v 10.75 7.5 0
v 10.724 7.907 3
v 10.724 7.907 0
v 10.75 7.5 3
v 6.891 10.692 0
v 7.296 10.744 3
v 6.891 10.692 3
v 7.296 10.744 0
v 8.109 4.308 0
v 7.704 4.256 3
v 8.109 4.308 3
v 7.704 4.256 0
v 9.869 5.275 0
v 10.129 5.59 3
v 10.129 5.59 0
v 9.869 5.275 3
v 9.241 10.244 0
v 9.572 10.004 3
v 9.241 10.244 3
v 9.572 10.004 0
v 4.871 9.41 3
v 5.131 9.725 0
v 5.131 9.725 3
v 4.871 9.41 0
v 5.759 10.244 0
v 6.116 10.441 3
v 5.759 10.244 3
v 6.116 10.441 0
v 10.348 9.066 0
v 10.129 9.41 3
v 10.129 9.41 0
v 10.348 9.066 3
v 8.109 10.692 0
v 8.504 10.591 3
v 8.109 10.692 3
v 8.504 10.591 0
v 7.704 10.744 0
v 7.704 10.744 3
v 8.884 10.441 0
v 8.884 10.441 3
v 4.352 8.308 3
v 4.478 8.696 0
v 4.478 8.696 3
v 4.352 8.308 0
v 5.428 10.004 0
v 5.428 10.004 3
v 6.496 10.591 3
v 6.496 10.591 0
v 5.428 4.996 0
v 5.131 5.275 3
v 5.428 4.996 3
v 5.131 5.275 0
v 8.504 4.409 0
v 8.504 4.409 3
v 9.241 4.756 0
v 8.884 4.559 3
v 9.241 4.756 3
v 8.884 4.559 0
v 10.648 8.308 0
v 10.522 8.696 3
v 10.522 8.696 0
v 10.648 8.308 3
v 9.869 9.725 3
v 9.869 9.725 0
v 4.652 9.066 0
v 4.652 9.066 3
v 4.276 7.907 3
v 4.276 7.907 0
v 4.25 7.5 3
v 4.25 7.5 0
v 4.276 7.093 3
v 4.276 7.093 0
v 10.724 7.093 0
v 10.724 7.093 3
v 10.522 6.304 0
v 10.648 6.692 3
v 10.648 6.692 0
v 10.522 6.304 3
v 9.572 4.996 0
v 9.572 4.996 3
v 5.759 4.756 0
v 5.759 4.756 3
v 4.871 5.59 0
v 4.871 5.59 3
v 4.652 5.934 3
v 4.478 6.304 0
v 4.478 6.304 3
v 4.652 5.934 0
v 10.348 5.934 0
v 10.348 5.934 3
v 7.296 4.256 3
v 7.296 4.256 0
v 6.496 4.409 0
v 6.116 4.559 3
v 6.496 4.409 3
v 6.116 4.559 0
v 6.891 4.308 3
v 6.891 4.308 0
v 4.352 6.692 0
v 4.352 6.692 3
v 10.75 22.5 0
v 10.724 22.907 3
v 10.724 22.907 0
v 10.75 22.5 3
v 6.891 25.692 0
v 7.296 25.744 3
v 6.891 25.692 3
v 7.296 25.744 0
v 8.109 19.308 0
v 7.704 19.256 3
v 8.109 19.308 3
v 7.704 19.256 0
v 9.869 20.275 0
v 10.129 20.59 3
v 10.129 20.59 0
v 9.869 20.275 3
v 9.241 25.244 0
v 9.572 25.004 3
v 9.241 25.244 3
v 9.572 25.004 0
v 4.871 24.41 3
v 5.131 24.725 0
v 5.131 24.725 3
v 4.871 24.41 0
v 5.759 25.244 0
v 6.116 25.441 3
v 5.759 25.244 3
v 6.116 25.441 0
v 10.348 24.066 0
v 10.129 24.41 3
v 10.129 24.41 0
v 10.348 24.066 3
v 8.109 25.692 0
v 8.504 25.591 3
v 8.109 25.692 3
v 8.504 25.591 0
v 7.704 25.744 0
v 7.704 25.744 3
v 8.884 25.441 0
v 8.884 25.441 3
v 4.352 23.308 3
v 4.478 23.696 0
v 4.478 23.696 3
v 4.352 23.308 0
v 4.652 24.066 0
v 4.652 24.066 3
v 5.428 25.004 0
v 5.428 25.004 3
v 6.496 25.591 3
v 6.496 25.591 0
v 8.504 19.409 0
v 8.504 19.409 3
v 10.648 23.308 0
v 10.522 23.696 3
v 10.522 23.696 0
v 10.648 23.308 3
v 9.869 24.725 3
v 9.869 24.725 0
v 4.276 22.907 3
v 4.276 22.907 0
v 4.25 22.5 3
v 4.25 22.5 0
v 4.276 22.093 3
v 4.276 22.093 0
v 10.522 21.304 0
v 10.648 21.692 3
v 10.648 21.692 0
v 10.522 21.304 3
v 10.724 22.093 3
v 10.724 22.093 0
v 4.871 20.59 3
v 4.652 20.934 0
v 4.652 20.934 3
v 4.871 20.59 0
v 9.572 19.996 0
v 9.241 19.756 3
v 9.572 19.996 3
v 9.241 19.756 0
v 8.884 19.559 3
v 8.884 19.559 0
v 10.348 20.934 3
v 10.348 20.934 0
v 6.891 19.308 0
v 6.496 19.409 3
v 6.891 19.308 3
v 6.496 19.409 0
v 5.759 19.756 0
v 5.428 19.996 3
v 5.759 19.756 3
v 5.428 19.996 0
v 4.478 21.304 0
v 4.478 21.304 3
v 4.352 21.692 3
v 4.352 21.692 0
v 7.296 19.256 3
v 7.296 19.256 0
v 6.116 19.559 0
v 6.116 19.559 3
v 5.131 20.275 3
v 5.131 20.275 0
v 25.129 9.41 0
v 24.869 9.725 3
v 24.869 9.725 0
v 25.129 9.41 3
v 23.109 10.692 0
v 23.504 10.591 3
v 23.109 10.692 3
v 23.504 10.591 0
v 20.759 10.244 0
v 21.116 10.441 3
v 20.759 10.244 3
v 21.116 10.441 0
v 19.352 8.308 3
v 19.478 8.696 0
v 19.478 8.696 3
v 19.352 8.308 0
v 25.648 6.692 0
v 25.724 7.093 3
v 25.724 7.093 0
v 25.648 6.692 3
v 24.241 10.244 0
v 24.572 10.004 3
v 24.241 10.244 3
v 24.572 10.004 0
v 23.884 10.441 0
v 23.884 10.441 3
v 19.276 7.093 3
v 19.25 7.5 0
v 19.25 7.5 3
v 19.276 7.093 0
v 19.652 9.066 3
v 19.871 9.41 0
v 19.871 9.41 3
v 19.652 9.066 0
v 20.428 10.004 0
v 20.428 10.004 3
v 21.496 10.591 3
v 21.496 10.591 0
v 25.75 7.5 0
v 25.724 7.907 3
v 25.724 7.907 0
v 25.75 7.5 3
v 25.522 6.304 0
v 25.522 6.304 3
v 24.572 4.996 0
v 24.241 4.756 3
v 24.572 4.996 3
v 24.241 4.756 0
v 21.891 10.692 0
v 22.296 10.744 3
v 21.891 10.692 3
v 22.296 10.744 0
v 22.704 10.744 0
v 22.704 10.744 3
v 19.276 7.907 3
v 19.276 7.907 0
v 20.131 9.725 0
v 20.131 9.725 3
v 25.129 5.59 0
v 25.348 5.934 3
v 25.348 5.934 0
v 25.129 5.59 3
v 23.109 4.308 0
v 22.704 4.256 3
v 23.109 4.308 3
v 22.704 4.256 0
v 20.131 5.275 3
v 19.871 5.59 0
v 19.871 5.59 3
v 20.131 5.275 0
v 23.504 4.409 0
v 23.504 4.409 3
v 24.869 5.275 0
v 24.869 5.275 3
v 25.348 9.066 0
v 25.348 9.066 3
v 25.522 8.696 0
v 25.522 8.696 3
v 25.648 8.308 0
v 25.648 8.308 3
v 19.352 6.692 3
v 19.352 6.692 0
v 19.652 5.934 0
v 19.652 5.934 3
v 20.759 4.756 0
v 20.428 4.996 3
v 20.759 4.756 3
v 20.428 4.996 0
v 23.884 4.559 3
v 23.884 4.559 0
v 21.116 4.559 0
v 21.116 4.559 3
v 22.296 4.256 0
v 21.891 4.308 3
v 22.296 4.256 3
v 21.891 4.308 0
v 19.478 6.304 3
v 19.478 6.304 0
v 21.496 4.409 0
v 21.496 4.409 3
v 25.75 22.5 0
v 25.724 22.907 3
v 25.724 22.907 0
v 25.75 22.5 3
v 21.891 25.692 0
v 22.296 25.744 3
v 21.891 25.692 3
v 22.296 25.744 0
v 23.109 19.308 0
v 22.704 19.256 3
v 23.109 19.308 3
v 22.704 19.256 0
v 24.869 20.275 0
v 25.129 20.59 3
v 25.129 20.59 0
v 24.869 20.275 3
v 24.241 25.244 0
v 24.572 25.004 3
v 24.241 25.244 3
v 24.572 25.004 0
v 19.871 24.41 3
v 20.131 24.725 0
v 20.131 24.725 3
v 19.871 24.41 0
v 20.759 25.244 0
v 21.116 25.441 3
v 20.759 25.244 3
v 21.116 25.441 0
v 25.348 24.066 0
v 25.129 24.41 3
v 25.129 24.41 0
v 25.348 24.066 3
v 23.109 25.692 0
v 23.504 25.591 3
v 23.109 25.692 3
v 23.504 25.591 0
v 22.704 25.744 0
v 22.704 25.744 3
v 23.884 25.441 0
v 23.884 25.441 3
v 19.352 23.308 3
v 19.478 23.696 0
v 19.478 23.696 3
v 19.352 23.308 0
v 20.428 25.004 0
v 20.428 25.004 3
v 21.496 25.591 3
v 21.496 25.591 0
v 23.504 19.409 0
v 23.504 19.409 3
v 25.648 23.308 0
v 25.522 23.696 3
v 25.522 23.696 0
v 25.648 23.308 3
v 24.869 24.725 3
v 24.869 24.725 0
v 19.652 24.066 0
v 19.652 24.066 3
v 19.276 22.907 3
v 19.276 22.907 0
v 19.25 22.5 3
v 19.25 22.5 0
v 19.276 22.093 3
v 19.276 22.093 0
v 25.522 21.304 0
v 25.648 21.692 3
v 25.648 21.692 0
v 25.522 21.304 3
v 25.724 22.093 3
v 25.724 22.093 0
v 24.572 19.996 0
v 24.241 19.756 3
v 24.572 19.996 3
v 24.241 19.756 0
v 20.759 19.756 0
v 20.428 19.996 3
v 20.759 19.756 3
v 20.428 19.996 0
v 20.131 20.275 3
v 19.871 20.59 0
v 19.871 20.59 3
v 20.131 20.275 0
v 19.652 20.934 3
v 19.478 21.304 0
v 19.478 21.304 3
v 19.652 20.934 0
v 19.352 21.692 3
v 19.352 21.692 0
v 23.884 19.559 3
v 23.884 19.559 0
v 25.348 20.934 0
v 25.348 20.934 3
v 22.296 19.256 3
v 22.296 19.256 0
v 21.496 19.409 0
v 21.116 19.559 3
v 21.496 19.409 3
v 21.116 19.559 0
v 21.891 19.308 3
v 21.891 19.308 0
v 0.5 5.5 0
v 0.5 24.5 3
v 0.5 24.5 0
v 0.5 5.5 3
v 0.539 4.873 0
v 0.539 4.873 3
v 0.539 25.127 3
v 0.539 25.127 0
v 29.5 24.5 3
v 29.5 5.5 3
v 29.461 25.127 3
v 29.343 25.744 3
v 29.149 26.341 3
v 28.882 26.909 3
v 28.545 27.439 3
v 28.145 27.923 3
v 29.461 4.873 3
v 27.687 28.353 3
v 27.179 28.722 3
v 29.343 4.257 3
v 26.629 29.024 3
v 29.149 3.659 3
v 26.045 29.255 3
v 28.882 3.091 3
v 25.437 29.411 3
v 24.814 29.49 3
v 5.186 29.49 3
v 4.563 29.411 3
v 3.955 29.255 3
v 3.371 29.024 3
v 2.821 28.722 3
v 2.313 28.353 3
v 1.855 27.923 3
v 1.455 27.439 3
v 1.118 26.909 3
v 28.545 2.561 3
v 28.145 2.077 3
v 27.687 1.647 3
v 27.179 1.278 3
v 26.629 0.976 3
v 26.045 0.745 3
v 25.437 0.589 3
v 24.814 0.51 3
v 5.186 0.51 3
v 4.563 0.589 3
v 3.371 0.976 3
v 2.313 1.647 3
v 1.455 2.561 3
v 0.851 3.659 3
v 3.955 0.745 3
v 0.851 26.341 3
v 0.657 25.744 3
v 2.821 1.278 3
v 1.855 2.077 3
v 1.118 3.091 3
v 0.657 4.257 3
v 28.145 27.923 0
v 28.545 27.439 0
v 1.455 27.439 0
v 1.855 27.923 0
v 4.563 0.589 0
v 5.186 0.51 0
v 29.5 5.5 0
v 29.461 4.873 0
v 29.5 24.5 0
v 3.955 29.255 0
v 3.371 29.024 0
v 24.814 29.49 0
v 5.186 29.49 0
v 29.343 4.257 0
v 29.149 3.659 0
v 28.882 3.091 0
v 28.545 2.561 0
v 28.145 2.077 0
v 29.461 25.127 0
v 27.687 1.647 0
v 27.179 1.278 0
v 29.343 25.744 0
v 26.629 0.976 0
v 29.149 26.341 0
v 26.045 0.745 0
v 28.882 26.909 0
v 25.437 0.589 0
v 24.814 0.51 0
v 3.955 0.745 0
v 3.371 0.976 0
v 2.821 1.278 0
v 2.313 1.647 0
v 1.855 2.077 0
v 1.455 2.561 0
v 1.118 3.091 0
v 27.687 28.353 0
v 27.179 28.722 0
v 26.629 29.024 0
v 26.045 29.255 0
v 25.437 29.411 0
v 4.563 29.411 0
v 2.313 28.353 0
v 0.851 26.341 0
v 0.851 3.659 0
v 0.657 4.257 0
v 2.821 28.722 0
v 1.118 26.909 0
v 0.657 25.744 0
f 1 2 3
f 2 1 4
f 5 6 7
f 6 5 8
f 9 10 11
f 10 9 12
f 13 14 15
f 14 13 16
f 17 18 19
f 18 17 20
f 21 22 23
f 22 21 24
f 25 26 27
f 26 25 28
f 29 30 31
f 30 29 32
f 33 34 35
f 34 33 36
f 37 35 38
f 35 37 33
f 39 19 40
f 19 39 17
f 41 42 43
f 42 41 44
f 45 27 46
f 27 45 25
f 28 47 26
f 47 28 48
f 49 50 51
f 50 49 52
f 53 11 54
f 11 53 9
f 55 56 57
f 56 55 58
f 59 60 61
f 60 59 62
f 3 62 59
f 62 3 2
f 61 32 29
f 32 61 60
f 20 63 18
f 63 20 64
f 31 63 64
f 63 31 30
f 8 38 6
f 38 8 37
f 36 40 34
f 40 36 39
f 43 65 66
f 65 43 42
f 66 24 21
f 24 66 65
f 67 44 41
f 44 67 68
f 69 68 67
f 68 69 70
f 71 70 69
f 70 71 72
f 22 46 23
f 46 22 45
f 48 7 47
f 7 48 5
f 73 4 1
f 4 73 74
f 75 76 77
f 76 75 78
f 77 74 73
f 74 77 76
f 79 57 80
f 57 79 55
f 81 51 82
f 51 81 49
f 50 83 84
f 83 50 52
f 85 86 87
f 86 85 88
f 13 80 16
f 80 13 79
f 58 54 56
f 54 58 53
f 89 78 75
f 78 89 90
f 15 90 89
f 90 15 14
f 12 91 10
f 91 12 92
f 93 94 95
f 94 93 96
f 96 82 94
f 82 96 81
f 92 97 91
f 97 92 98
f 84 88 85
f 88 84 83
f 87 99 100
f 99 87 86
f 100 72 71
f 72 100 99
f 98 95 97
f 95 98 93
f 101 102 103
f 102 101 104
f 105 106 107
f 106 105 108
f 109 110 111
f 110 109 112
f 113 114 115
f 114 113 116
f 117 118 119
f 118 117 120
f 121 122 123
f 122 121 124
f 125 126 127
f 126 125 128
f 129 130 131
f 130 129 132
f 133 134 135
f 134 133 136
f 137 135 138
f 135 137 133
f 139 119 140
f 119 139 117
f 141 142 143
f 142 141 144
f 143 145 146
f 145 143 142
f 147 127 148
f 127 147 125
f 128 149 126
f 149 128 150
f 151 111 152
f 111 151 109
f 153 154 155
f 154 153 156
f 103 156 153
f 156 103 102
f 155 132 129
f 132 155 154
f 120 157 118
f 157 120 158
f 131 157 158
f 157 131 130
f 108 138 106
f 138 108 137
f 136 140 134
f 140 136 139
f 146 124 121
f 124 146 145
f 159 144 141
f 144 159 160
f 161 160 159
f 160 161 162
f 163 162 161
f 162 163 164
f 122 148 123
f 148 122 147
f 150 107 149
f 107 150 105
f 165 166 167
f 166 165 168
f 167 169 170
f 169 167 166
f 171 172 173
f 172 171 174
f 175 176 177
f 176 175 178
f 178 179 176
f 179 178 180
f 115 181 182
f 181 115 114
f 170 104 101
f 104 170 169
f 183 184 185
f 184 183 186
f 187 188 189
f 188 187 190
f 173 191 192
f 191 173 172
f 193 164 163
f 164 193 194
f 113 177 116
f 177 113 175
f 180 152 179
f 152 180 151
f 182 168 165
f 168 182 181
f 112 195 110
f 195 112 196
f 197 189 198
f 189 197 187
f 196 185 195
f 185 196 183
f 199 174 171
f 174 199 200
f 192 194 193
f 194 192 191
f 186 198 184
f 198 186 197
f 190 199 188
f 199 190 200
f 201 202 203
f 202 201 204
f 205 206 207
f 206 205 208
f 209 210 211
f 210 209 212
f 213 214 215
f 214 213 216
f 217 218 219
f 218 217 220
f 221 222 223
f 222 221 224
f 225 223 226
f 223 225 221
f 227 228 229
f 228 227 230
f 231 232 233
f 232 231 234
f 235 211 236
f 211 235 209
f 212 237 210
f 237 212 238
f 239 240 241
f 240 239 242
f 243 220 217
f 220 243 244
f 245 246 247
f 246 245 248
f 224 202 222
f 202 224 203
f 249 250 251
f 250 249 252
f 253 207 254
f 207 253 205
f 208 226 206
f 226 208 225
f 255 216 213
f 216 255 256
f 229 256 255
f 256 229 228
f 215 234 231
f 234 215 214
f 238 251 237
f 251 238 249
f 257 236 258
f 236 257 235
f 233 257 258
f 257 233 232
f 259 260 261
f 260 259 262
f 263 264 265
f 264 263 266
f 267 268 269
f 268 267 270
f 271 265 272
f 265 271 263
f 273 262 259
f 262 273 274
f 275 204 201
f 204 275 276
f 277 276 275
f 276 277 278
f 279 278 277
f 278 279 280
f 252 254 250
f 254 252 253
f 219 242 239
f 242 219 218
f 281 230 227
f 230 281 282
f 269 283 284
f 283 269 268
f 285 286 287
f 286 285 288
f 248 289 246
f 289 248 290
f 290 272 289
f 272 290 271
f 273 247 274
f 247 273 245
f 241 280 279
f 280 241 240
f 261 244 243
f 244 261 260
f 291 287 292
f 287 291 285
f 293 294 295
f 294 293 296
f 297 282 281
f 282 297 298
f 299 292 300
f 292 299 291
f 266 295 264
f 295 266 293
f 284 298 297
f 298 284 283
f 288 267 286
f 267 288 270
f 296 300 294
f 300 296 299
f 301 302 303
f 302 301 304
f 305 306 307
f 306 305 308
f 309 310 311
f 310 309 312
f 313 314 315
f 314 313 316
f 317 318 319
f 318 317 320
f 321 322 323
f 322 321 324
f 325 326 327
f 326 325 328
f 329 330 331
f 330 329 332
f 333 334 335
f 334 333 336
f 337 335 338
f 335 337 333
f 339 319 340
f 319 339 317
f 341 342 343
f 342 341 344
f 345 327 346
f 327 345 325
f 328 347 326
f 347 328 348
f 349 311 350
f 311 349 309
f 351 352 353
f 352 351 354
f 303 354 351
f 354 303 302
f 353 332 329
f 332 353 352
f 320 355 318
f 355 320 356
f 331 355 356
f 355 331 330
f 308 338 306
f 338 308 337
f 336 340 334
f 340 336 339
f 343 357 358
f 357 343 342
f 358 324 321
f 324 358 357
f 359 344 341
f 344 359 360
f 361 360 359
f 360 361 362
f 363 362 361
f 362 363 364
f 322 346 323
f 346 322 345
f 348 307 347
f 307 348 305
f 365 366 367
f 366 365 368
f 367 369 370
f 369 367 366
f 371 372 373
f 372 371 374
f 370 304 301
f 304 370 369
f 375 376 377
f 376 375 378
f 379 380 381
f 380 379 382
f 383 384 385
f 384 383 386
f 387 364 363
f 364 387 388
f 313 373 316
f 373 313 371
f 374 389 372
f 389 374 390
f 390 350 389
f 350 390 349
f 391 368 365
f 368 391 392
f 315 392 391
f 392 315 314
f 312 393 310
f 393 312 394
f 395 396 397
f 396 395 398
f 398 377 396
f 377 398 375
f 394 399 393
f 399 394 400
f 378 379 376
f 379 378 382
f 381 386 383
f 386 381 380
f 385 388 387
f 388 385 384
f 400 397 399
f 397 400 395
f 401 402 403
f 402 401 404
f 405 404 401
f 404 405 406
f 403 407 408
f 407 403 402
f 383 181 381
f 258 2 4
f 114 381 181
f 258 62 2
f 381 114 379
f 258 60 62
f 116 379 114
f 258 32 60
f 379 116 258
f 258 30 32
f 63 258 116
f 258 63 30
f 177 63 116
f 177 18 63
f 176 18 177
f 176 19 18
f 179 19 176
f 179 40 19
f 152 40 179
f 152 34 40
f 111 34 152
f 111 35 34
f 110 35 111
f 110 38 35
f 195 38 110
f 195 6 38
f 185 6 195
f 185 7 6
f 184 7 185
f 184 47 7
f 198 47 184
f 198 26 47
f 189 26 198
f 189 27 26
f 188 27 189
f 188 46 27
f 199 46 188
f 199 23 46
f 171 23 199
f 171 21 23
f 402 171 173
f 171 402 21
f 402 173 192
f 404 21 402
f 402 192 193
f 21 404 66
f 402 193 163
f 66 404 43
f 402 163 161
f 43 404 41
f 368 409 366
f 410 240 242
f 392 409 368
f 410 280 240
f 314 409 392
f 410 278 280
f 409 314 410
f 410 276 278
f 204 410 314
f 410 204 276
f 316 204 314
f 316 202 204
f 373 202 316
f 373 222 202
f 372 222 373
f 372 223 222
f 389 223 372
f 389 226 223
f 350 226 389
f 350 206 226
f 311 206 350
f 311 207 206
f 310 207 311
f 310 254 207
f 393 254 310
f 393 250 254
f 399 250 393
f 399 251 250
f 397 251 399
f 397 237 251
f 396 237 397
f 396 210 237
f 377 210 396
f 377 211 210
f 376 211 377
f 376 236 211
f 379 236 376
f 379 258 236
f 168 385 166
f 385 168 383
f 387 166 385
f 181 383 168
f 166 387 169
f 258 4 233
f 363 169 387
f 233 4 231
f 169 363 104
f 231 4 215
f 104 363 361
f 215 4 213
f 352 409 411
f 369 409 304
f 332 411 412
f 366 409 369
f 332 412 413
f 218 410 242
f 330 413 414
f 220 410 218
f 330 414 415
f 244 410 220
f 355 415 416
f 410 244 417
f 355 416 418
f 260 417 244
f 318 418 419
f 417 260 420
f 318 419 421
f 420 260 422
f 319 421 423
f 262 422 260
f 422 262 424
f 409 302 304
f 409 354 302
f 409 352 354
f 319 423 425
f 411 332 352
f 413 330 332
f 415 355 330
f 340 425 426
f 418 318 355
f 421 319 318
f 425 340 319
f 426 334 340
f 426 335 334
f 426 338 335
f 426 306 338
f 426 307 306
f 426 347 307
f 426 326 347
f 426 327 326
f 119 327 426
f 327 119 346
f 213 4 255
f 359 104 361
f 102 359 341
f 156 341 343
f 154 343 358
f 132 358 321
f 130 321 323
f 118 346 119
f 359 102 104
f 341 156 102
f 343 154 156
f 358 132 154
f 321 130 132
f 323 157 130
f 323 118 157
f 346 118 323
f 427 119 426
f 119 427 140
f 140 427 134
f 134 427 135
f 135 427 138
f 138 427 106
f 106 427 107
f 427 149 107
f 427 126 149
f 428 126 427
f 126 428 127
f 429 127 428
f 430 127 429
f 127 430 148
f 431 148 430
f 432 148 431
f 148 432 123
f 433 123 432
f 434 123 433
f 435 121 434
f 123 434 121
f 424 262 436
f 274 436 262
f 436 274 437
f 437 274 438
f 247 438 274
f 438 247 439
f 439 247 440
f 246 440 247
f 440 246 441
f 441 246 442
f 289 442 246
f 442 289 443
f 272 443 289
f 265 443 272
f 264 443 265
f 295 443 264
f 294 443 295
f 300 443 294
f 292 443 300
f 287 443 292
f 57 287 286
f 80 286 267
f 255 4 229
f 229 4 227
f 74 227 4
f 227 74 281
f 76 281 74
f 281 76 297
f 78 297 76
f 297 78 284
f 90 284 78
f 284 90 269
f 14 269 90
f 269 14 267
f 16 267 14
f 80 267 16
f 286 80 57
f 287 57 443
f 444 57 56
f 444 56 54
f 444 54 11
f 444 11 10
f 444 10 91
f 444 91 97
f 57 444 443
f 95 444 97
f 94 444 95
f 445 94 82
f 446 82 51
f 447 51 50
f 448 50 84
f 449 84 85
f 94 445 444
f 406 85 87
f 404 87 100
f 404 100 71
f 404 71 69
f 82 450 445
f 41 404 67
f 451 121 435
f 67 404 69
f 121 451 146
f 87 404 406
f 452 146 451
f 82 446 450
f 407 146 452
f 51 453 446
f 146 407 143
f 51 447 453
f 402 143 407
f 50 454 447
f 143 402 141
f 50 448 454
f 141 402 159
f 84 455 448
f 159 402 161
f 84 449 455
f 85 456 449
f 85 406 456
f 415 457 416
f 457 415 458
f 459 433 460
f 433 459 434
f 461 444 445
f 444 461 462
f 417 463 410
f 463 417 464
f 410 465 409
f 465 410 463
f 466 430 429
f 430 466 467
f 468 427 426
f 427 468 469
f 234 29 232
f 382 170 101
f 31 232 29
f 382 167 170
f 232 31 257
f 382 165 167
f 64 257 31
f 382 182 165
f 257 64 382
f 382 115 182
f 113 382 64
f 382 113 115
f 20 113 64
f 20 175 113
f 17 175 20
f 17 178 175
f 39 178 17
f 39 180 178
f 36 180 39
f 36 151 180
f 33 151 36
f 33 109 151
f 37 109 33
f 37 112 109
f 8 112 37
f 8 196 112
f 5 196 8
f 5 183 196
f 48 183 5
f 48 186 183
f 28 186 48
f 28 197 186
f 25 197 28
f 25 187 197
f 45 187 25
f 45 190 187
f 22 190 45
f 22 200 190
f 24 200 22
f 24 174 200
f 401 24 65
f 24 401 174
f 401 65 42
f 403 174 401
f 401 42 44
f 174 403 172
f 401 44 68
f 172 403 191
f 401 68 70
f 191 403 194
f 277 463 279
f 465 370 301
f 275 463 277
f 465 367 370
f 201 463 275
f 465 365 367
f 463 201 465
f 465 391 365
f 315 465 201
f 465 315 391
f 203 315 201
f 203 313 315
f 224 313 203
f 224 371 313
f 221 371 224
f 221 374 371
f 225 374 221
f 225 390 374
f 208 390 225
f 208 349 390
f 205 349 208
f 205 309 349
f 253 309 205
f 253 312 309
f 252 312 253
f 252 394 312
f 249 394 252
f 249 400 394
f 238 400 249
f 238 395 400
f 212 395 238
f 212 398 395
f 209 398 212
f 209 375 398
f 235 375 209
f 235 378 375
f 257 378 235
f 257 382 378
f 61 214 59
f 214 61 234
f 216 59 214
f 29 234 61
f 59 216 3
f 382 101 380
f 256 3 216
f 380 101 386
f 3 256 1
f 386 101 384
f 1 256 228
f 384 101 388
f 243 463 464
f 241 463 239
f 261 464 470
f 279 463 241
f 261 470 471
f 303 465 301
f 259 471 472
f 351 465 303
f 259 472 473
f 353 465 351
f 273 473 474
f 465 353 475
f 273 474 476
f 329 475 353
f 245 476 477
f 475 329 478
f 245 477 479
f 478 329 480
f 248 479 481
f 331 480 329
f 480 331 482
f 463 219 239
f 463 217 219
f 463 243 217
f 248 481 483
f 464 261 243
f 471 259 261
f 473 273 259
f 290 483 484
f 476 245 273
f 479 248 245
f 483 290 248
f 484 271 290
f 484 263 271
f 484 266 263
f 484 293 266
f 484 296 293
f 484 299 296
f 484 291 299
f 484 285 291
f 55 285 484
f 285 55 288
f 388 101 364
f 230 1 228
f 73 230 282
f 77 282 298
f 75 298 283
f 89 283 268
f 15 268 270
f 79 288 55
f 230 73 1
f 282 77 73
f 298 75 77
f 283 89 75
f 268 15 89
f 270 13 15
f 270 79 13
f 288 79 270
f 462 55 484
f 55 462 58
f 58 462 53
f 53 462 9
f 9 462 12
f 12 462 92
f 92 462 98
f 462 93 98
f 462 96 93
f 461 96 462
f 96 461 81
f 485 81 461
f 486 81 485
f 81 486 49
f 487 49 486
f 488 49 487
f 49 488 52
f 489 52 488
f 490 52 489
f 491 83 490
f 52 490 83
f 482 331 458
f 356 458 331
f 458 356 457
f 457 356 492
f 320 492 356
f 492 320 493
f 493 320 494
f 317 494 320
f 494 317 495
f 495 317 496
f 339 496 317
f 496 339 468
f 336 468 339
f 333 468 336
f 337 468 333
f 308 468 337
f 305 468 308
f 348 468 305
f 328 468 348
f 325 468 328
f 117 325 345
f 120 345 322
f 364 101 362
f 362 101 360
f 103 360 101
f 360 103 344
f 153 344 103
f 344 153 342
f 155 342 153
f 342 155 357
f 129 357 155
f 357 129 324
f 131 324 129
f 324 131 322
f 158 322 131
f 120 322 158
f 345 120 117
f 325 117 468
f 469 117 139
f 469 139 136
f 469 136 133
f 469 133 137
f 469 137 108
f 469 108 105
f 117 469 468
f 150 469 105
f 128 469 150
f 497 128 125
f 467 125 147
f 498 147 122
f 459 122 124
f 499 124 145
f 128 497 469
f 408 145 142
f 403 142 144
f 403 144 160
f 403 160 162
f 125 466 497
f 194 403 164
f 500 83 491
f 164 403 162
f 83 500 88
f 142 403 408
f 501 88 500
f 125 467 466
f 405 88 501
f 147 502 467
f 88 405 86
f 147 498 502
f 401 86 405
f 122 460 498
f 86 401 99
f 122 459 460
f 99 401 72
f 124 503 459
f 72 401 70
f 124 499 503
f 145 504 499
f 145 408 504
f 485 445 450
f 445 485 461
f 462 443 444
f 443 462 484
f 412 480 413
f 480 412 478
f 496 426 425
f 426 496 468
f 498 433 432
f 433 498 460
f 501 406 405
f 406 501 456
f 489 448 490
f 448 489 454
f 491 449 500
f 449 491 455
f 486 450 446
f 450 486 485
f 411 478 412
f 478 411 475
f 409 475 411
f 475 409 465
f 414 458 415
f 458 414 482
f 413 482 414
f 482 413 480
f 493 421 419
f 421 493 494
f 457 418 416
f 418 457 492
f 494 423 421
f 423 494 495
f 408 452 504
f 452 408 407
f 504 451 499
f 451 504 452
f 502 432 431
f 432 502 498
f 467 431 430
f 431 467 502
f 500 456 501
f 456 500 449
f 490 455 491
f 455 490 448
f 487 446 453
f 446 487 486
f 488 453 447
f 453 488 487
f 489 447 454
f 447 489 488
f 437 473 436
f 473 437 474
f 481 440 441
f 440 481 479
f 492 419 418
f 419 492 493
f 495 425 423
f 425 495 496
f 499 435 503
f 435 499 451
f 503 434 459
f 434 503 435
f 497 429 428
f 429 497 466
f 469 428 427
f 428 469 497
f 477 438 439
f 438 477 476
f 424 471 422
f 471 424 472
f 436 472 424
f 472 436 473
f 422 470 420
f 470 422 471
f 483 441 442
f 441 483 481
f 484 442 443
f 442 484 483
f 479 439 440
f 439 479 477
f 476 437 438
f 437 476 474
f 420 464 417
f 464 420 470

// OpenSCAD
// Generated by SolidPython 1.1.3 on 2023-01-09 14:52:54
$fn = 50;


difference() {
	union() {
		translate(v = [15.0000000000, 15.0000000000, 0]) {
			rotate(a = [0, 0, 0]) {
				hull() {
					translate(v = [-9.5000000000, 9.5000000000, 0]) {
						rotate(a = [0, 0, 0]) {
							translate(v = [0, 0, 0]) {
								rotate(a = [0, 0, 0]) {
									cylinder(h = 3, r = 5);
								}
							}
						}
					}
					translate(v = [9.5000000000, 9.5000000000, 0]) {
						rotate(a = [0, 0, 0]) {
							translate(v = [0, 0, 0]) {
								rotate(a = [0, 0, 0]) {
									cylinder(h = 3, r = 5);
								}
							}
						}
					}
					translate(v = [-9.5000000000, -9.5000000000, 0]) {
						rotate(a = [0, 0, 0]) {
							translate(v = [0, 0, 0]) {
								rotate(a = [0, 0, 0]) {
									cylinder(h = 3, r = 5);
								}
							}
						}
					}
					translate(v = [9.5000000000, -9.5000000000, 0]) {
						rotate(a = [0, 0, 0]) {
							translate(v = [0, 0, 0]) {
								rotate(a = [0, 0, 0]) {
									cylinder(h = 3, r = 5);
								}
							}
						}
					}
				}
			}
		}
	}
	union() {
		translate(v = [7.5000000000, 7.5000000000, 0]) {
			rotate(a = [0, 0, 0]) {
				translate(v = [0, 0, -50]) {
					rotate(a = [0, 0, 0]) {
						cylinder(h = 100, r = 3.2500000000);
					}
				}
			}
		}
		translate(v = [7.5000000000, 22.5000000000, 0]) {
			rotate(a = [0, 0, 0]) {
				translate(v = [0, 0, -50]) {
					rotate(a = [0, 0, 0]) {
						cylinder(h = 100, r = 3.2500000000);
					}
				}
			}
		}
		translate(v = [22.5000000000, 7.5000000000, 0]) {
			rotate(a = [0, 0, 0]) {
				translate(v = [0, 0, -50]) {
					rotate(a = [0, 0, 0]) {
						cylinder(h = 100, r = 3.2500000000);
					}
				}
			}
		}
		translate(v = [22.5000000000, 22.5000000000, 0]) {
			rotate(a = [0, 0, 0]) {
				translate(v = [0, 0, -50]) {
					rotate(a = [0, 0, 0]) {
						cylinder(h = 100, r = 3.2500000000);
					}
				}
			}
		}
	}
}
/***********************************************
*********      SolidPython code:      **********
************************************************
 
from solid import *
import os
import subprocess

import oomB

import opsc_library_gen

mode = "laser"
#mode = "3d_print"

defined_objects = {}

radius_dict = {}
countersunk_dict = {}


def set_mode(m):
    global mode
    mode = m
    radius_dict['M6'] = 6.5/2
    radius_dict['M3'] = 3.3/2
    if mode == "laser":
        radius_dict['M6'] = 6/2
        radius_dict['M3'] = 3/2

    countersunk_dict['M3'] = {}
    countersunk_dict['M3']['little_rad'] = radius_dict['M3']
    countersunk_dict['M3']['big_rad'] = (5.5+0.6)/2
    if mode == "laser":
        countersunk_dict['M3']['big_rad'] = (4.75+0.6)/2
        countersunk_dict['M3']['little_rad'] = (4.75+0.6)/2

    countersunk_dict['M3']['height'] = 1.7


def opsc_make_object(filename, objects, save_type="none",resolution=50, layers = 1, tilediff = 200, mode="laser"):
    set_mode(mode)
    save_type = save_type.lower()
    os.makedirs(os.path.dirname(filename), exist_ok=True)
    final_object = opsc_get_object(objects)
    # Save the final object to the specified filename    
    scad_render_to_file(final_object, filename, file_header='$fn = %s;' % resolution, include_orig_code=True)
    if mode == "laser":
        filename_laser = filename.replace(".scad","-flat.scad")
        scad_render_to_file(getLaser(final_object, layers=layers, tilediff=tilediff), filename_laser, file_header='$fn = %s;' % resolution, include_orig_code=True)
        if save_type == "all":
            saveToAll(filename_laser)
        elif save_type == "dxf":
            saveToDxf(filename_laser)
    if save_type == "all":
        saveToAll(filename)
    elif save_type == "dxf":
        saveToDxf(filename)


def opsc_get_object(objects):
    # Create the solidpython objects
    positive_objects = [get_opsc_item(obj) for obj in objects if obj['type'] == 'positive']
    negative_objects = [get_opsc_item(obj) for obj in objects if obj['type'] == 'negative']
    # Union the positive objects
    positive_object = union()(*positive_objects)
    # Union the negative objects
    negative_object = union()(*negative_objects)
    # Create the final object by subtracting the negative objects from the positive objects
    return difference()(positive_object, negative_object)

def get_opsc_item(params):
    # A dictionary to map radius string values to numerical values
    #radius_dict = {'small': 5, 'medium': 10, 'large': 15}
    # An array of function names for basic shapes
    basic_shapes = ['cube', 'sphere', 'cylinder']
    
    # An array of function names for other shapes
    other_shapes = ['hole', 'slot', 'rounded_rectangle', 'countersunk']
    


    # Convert radius to r if present, and remove radius from the params dictionary
    if 'radius' in params:
        if isinstance(params['radius'], str):
            # Use the radius_dict to map the radius string value to a numerical value
            params['r'] = radius_dict[params['radius']]
        else:
            params['r'] = params['radius']
        del params['radius']
    

    # Check if the object type is a basic shape
    if params['shape'] in basic_shapes:
        # Remove shape and unexpected dictionary values
        allowed_keys = {'size', 'r', 'r1', 'r2', 'd', 'h', 'rw', 'rh', 'dw', 'dh'}
        shape_params = {k: v for k, v in params.items() if k in allowed_keys}

        # Call the corresponding function for the shape parameter, using ** notation to pass the shape_params dictionary as keyword arguments
        return get_opsc_transform(params,globals()[params['shape']](**shape_params))
    
    # If the object type is not a basic shape, check if it's a defined object or one of the other shapes
    elif params['shape'] in other_shapes:
        # Call the corresponding function for the shape parameter, passing the params dictionary as an argument
        p2 = copy.deepcopy(params)
        p2["pos"] = [0,0,0]
        return get_opsc_transform(params,globals()[params['shape']](p2))
    
    # If the object is not a basic shape or a defined object, try to import it from a .scad file
    else:
        obj = defined_objects[params['shape']]
        return get_opsc_transform(params,obj)

def get_opsc_transform(params, solid_obj):
    # Rotate the object based on the 'rot' field in the params dictionary, or the 'rotX', 'rotY', and 'rotZ' fields if 'rot' is not present
    rot = params.get('rot', [])
    if rot:
        rotX, rotY, rotZ = rot
    else:
        rotX = params.get('rotX', 0)
        rotY = params.get('rotY', 0)
        rotZ = params.get('rotZ', 0)
    solid_obj = rotate([rotX, rotY, rotZ])(solid_obj)

    # Translate the object based on the 'pos' field in the params dictionary, or the 'x', 'y', and 'z' fields if 'pos' is not present
    pos = params.get('pos', [])
    if pos:
        x, y, z = pos
    else:
        x = params.get('x', 0)
        y = params.get('y', 0)
        z = params.get('z', 0)
    solid_obj = translate([x, y, z])(solid_obj)
    return solid_obj


import random

def opsc_easy_array(type, shape, repeats, pos_start, shift_arr, **kwargs):
    for i in range(0,3):
        repeats.append(1)
        pos_start.append(0)
        shift_arr.append(0)
    return_objects = []

    for x in range(0,repeats[0]):
        for y in range(0,repeats[1]):
            for z in range(0,repeats[2]):
                return_objects.append(opsc_easy(type, shape, pos=[pos_start[0]+x*shift_arr[0],pos_start[1]+y*shift_arr[1],pos_start[2]+z*shift_arr[2]], **kwargs))
    return return_objects                



def opsc_easy(type, shape, **kwargs):
    obj = {
        'type': type,
        'shape': shape
    }
    for param in ['size', 'r', 'r1', 'r2', 'd', 'h', 'rw', 'rh', 'dw', 'dh', 'pos', 'x', 'y', 'z', 'rot', 'rotX', 'rotY', 'rotZ', "w"]:
        if param in kwargs:
            obj[param] = kwargs[param]
    return obj

def hole(params):
    p2 = copy.deepcopy(params)  
    # Check if the radius is a string and replace it with the corresponding value from the dictionary
    if isinstance(p2['r'], str):
        p2['r'] = radius_dict[p2['r']]
    
    # Set the height to 100 if not specified
    if 'h' not in p2:
        p2['h'] = 100
        p2["pos"] = [0,0,-50]
    p2["center"] = True
    # Create the cylinder object
    p2["shape"] = "cylinder"
    p2["type"] = "positive"

    return get_opsc_item(p2)

import copy

def countersunk(params):
    p2 = copy.deepcopy(params)
    counter_rad = p2['r']
    p2['r'] = radius_dict[p2['r']]
    hp = copy.deepcopy(p2)
    hp["type"] = "positive"
    hp["shape"] = "hole"
    del hp["rot"]
    hol = get_opsc_item(hp)
    
    cp = copy.deepcopy(p2)
    cp["h"] = countersunk_dict[counter_rad]["height"]
    cp["r2"] = countersunk_dict[counter_rad]["little_rad"]
    cp["r1"] = countersunk_dict[counter_rad]["big_rad"]
    del cp["r"]
    del cp["rot"]
    cp["type"] = "positive"
    cp["shape"] = "cylinder"
    cp["pos"] = [0,0,0]

    top = get_opsc_item(cp)
    return union()(hol,top)



def slot(params):  
    p2 = copy.deepcopy(params) 
    if isinstance(p2['r'], str):
        p2['r'] = radius_dict[p2['r']]
    p2["type"] = "positive"
    p2["shape"] = "hole"
    del p2["rot"]
    p2["pos"] = [0,0,0]
    left = copy.deepcopy(p2)
    right = copy.deepcopy(p2)
    left["pos"][0] = p2["w"] / 2 - p2["r"] 
    
    right["pos"][0] = -p2["w"] / 2 + p2["r"] 
    pass
    leftObj = get_opsc_item(left)
    rightObj = get_opsc_item(right)
    return hull()(leftObj, rightObj)

def rounded_rectangle(params):   
    p2 = copy.deepcopy(params) 
    p2["h"] = p2["size"][2]
    p2["pos"] = p2.get("pos", [0, 0, 0]) 
    p2["type"] = "positive"
    p2["shape"] = "hole"
    p2["pos"] = [0,0,0]
    
    if 'rot' in p2:
        del p2["rot"]   
    if 'r' not in p2:
        p2["r"] = 5 
    tl = copy.deepcopy(p2)
    tr = copy.deepcopy(p2)
    bl = copy.deepcopy(p2)
    br = copy.deepcopy(p2)
    tl["pos"][0] = -(p2["size"][0] - p2["r"]*2)/2
    tl["pos"][1] = (p2["size"][1] - p2["r"]*2)/2
    tr["pos"][0] = (p2["size"][0] - p2["r"]*2)/2
    tr["pos"][1] = (p2["size"][1] - p2["r"]*2)/2
    bl["pos"][0] = -(p2["size"][0] - p2["r"]*2)/2
    bl["pos"][1] = -(p2["size"][1] - p2["r"]*2)/2
    br["pos"][0] = (p2["size"][0] - p2["r"]*2)/2
    br["pos"][1] = -(p2["size"][1] - p2["r"]*2)/2
    del tl["size"]
    del tr["size"]
    del bl["size"]
    del br["size"]
    tlo = get_opsc_item(tl)
    tro = get_opsc_item(tr)
    blo = get_opsc_item(bl)
    bro = get_opsc_item(br)    
    return hull()(tlo, tro, blo, bro)



def import_scad_object(filename):
    # Import the .scad file and convert it to a solidpython object
    #filename = "parts"
    obj = import_scad(filename)
    return obj.main()
    


import os
import solid as solidpython

# A dictionary to store the defined objects


def load_scad_objects():
    opsc_library_gen.gen_library(defined_objects)

import random

def test(num_objects):
    objects = []
    for i in range(num_objects):
        # Choose a random shape
        #shape = random.choice(['cube', 'sphere', 'cylinder', 'hole', 'slot', "rounded_rectangle"])
        shape = random.choice(["rounded_rectangle"])

        # Choose a random type
        type = random.choice(['positive', 'negative'])
        
        # Create an empty object dictionary
        obj = {'shape': shape, 'type': type}
        
        # Set shape-specific parameters
        if obj['shape'] in ['cube']:
            obj['size'] =  [random.uniform(5, 15), random.uniform(5, 15), random.uniform(5, 15)]
        if obj['shape'] in ['rounded_rectangle']:
            obj['size'] =  [random.uniform(5, 15), random.uniform(5, 15), random.uniform(5, 15)]
            obj['r'] = random.uniform(0.5, 5)
        elif obj['shape'] == 'sphere':
            obj['r'] = random.uniform(5, 15)
        elif obj['shape'] in ['cylinder', 'hole']:
            obj['r'] = random.uniform(0.5, 5)
            obj['h'] = random.uniform(5, 15)
        elif obj['shape'] == 'slot':
            obj['r'] = random.uniform(0.5, 5)
            obj['h'] = random.uniform(5, 15)
            obj['w'] = random.uniform(5, 15)
        
        # Set a random position and rotation
        obj['pos'] = [random.uniform(-20, 20), random.uniform(-20, 20), random.uniform(-20, 20)]
        obj['rot'] = [random.uniform(-180, 180), random.uniform(-180, 180), random.uniform(-180, 180)]
        
        # Add the object to the list
        objects.append(obj)
    return objects

####### old file saving
def saveToAll(fileIn):
    saveToDxf(fileIn)
    saveToPng(fileIn)
    saveToStl(fileIn)
    saveToSvg(fileIn)

def saveToDxf(fileIn, fileOut="", copy_to_laser=True):
    if fileOut == "":
        fileOut = fileIn.replace(".scad",".dxf")
    saveToFile(fileIn, fileOut)


    
def saveToPng(fileIn, fileOut="",extra="--render"):
    if fileOut == "":
        fileOut = fileIn.replace(".scad",".png")
    saveToFile(fileIn, fileOut)

def saveToStl(fileIn, fileOut=""):
    if fileOut == "":
        fileOut = fileIn.replace(".scad",".stl")
    saveToFile(fileIn, fileOut)
    
def saveToSvg(fileIn, fileOut=""):
    if fileOut == "":
        fileOut = fileIn.replace(".scad",".svg")
    saveToFile(fileIn, fileOut)

def saveToFile(fileIn, fileOut,extra=""):
    #extra = extra + " --colorscheme Tomorrow"

    launchStr = 'openscad -o "' + fileOut + '"' + extra + ' "' + fileIn + '"'
    if ".png" in fileOut:
        launchStr = launchStr + " --render"
    print("            saveToFile launch string: " + launchStr)
    subprocess.run(launchStr)
    x=0

def getLaser(final_object,start=1.5,layers=1,thickness=3,tilediff=200):
        rv= []

        for x in range(layers):
            rv.append(translate([0,x*tilediff,0])(
                    projection()(
                        intersection()(translate([-500,-500,start+x*thickness])(cube(size=[1000,1000,0.1])),
                            final_object
                        )
                    )
            )
            )
            
        return union()(rv)

set_mode("laser")
load_scad_objects() 
 
************************************************/
